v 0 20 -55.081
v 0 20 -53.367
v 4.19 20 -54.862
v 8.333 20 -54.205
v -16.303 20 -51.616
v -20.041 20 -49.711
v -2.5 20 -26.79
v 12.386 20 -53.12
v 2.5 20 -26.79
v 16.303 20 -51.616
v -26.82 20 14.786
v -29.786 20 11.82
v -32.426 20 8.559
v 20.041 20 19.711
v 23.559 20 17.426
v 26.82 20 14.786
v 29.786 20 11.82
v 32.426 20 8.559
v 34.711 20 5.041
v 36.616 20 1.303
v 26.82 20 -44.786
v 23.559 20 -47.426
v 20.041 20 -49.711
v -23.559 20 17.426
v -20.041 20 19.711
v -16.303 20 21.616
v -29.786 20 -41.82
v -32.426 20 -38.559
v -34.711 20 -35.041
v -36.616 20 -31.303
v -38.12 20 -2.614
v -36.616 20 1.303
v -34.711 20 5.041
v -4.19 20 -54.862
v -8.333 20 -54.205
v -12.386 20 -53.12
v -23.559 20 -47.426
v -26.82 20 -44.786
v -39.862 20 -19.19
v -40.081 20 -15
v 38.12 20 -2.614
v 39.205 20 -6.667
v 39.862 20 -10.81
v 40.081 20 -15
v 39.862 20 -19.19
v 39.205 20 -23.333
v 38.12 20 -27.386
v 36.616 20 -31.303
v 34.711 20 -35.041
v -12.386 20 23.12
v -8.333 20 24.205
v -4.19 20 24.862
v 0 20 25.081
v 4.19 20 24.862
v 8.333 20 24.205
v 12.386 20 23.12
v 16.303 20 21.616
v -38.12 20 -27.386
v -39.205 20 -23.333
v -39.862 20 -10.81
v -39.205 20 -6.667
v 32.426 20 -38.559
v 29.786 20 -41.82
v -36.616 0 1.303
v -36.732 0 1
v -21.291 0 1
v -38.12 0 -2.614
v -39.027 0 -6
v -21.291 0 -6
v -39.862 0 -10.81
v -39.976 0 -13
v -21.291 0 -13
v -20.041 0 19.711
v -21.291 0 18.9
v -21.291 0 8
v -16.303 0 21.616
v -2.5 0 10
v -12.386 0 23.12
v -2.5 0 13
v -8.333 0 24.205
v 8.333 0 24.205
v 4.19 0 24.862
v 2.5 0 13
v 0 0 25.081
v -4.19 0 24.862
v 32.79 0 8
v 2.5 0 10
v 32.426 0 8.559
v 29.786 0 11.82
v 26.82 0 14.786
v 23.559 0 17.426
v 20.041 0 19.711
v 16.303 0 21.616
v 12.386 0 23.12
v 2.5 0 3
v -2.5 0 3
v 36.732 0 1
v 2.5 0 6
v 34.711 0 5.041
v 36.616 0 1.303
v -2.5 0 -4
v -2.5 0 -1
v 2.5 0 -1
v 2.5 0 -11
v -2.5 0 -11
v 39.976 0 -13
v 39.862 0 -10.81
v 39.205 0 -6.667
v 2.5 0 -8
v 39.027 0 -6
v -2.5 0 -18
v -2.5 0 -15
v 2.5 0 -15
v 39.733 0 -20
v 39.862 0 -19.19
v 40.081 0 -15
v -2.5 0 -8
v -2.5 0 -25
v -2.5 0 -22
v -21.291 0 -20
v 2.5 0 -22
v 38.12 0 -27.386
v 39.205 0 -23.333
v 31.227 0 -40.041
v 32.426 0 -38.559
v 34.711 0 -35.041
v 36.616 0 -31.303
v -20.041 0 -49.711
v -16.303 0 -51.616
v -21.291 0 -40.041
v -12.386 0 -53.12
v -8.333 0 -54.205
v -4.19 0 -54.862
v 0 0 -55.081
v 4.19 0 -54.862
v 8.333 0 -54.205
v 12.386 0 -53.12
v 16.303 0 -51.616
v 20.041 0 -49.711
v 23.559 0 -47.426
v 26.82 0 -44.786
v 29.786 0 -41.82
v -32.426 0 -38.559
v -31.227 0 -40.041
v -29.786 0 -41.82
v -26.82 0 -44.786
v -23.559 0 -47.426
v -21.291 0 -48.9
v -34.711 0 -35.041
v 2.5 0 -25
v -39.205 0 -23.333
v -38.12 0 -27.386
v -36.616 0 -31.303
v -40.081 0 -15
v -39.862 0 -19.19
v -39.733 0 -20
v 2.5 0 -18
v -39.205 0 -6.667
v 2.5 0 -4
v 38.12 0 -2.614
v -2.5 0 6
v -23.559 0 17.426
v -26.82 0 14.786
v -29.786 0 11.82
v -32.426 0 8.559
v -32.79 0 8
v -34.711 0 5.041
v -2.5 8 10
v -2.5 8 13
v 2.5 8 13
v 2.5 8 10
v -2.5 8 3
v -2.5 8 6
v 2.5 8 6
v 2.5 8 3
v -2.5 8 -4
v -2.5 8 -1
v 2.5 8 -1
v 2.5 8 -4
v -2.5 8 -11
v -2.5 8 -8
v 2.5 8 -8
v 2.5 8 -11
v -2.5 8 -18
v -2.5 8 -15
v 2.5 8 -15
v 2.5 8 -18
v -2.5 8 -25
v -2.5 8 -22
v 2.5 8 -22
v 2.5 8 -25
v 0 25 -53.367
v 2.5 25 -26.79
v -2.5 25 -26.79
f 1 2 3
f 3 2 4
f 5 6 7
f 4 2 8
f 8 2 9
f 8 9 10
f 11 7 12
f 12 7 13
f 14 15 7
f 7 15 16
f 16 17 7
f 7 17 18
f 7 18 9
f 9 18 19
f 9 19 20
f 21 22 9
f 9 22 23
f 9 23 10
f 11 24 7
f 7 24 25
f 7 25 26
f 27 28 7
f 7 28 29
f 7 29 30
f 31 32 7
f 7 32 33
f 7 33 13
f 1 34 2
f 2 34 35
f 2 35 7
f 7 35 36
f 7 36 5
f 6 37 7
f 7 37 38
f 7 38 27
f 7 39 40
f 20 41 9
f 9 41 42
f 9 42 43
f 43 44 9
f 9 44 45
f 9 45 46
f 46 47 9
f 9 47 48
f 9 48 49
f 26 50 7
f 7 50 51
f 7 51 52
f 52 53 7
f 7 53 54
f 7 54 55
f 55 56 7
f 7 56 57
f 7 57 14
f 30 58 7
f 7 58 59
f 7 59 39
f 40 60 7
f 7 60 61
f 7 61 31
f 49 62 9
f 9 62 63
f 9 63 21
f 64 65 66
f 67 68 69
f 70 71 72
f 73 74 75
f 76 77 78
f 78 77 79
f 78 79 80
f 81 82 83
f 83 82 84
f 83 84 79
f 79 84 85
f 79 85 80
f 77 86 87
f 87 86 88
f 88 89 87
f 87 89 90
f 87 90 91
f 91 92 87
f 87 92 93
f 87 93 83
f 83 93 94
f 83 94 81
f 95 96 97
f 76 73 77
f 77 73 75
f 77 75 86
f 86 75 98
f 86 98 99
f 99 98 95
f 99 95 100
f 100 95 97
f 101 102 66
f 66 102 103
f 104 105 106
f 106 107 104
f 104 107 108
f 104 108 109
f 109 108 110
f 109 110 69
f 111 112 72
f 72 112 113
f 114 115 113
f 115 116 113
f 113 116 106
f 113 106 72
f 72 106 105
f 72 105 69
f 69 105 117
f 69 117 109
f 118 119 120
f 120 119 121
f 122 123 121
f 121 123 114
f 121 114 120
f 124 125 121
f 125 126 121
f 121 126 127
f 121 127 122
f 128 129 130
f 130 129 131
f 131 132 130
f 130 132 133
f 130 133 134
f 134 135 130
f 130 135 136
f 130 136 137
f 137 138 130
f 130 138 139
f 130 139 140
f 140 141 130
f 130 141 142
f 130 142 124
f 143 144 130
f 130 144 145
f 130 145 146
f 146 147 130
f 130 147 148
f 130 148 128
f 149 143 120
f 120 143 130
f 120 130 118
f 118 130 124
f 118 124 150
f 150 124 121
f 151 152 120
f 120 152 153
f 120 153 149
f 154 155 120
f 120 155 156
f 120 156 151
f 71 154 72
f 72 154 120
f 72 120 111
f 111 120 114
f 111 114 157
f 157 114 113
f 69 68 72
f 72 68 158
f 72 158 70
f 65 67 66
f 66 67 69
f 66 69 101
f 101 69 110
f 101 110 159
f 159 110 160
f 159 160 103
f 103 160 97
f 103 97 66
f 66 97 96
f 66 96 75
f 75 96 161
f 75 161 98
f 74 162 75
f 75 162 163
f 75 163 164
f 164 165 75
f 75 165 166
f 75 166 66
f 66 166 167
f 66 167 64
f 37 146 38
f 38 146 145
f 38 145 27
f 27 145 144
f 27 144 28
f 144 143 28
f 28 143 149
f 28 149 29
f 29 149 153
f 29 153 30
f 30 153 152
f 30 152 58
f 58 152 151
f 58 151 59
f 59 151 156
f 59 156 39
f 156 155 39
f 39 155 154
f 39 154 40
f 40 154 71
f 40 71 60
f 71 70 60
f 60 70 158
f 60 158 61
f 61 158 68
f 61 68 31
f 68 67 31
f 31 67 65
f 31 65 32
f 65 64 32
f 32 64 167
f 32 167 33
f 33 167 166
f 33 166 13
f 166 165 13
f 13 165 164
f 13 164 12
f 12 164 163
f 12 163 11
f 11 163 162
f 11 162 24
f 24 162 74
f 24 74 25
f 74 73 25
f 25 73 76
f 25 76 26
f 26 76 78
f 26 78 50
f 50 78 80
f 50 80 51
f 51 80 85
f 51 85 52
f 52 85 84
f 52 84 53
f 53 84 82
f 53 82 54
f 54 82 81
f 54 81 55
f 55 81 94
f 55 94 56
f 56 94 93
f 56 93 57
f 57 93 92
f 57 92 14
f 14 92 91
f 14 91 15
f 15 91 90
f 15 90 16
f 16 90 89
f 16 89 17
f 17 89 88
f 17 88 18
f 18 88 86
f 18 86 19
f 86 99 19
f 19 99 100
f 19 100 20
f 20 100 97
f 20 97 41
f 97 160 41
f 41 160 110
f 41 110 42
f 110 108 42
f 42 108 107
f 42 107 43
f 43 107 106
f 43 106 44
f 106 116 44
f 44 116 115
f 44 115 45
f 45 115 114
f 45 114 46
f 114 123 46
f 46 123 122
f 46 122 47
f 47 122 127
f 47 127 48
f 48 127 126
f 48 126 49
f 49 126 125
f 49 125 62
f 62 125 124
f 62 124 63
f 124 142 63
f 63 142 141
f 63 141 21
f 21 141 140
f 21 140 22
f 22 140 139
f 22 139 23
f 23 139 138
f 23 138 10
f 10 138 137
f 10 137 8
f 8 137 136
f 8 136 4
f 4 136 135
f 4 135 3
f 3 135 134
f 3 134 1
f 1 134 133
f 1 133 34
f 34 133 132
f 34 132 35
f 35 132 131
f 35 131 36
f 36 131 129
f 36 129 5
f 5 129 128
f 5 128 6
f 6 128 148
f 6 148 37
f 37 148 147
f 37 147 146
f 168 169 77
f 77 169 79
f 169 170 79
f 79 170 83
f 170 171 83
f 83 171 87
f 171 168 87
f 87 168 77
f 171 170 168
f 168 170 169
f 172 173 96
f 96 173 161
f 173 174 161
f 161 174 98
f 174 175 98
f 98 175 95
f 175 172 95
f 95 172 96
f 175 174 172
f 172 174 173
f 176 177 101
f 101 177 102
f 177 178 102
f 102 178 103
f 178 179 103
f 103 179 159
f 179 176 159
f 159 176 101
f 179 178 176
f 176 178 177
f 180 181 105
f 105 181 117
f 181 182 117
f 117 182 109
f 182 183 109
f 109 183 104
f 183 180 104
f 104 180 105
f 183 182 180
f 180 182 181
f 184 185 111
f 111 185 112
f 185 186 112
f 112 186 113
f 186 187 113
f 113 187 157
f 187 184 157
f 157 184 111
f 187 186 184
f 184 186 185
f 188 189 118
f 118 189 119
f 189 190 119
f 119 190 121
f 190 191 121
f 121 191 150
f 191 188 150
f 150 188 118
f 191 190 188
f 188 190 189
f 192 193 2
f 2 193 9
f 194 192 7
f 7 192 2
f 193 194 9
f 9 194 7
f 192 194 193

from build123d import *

# Parameters (mm, degrees)
SKETCH2_R           = 40.08124111
BOSS_EXTRUDE2_DEPTH = 20
SKETCH1_W           = 5
SKETCH1_H           = 3
CUT_EXTRUDE1_DEPTH  = 8
BOSS_EXTRUDE3_DEPTH = 5


with BuildPart() as part:
    # Sketch2 → Boss-Extrude2 (new body)
    with BuildSketch(Plane(origin=(0, 0, 0), x_dir=(1, 0, 0), z_dir=(0, 1, 0))):
        with Locations((0, 15)):
            Circle(SKETCH2_R)
    extrude(amount=BOSS_EXTRUDE2_DEPTH)

    # Sketch1 → Cut-Extrude1 (cut)
    with BuildSketch(Plane(origin=(0, 0, 0), x_dir=(1, 0, 0), z_dir=(0, 1, 0))):
        with Locations((0, -4.5)):
            Rectangle(SKETCH1_W, SKETCH1_H)
        with Locations((0, -11.5)):
            Rectangle(SKETCH1_W, SKETCH1_H)
        with Locations((0, 2.5)):
            Rectangle(SKETCH1_W, SKETCH1_H)
        with Locations((0, 9.5)):
            Rectangle(SKETCH1_W, SKETCH1_H)
        with Locations((0, 16.5)):
            Rectangle(SKETCH1_W, SKETCH1_H)
        with Locations((0, 23.5)):
            Rectangle(SKETCH1_W, SKETCH1_H)
    extrude(amount=CUT_EXTRUDE1_DEPTH, mode=Mode.SUBTRACT)

    # Sketch3 → Boss-Extrude3 (add)
    with BuildSketch(Plane(origin=(0, 20, 0), x_dir=(1, 0, 0), z_dir=(0, 1, 0))):
        Polygon((0, 53.367433342), (-2.5, 26.790245023), (2.5, 26.790245023), align=None)
    extrude(amount=BOSS_EXTRUDE3_DEPTH)


solid = part.part
